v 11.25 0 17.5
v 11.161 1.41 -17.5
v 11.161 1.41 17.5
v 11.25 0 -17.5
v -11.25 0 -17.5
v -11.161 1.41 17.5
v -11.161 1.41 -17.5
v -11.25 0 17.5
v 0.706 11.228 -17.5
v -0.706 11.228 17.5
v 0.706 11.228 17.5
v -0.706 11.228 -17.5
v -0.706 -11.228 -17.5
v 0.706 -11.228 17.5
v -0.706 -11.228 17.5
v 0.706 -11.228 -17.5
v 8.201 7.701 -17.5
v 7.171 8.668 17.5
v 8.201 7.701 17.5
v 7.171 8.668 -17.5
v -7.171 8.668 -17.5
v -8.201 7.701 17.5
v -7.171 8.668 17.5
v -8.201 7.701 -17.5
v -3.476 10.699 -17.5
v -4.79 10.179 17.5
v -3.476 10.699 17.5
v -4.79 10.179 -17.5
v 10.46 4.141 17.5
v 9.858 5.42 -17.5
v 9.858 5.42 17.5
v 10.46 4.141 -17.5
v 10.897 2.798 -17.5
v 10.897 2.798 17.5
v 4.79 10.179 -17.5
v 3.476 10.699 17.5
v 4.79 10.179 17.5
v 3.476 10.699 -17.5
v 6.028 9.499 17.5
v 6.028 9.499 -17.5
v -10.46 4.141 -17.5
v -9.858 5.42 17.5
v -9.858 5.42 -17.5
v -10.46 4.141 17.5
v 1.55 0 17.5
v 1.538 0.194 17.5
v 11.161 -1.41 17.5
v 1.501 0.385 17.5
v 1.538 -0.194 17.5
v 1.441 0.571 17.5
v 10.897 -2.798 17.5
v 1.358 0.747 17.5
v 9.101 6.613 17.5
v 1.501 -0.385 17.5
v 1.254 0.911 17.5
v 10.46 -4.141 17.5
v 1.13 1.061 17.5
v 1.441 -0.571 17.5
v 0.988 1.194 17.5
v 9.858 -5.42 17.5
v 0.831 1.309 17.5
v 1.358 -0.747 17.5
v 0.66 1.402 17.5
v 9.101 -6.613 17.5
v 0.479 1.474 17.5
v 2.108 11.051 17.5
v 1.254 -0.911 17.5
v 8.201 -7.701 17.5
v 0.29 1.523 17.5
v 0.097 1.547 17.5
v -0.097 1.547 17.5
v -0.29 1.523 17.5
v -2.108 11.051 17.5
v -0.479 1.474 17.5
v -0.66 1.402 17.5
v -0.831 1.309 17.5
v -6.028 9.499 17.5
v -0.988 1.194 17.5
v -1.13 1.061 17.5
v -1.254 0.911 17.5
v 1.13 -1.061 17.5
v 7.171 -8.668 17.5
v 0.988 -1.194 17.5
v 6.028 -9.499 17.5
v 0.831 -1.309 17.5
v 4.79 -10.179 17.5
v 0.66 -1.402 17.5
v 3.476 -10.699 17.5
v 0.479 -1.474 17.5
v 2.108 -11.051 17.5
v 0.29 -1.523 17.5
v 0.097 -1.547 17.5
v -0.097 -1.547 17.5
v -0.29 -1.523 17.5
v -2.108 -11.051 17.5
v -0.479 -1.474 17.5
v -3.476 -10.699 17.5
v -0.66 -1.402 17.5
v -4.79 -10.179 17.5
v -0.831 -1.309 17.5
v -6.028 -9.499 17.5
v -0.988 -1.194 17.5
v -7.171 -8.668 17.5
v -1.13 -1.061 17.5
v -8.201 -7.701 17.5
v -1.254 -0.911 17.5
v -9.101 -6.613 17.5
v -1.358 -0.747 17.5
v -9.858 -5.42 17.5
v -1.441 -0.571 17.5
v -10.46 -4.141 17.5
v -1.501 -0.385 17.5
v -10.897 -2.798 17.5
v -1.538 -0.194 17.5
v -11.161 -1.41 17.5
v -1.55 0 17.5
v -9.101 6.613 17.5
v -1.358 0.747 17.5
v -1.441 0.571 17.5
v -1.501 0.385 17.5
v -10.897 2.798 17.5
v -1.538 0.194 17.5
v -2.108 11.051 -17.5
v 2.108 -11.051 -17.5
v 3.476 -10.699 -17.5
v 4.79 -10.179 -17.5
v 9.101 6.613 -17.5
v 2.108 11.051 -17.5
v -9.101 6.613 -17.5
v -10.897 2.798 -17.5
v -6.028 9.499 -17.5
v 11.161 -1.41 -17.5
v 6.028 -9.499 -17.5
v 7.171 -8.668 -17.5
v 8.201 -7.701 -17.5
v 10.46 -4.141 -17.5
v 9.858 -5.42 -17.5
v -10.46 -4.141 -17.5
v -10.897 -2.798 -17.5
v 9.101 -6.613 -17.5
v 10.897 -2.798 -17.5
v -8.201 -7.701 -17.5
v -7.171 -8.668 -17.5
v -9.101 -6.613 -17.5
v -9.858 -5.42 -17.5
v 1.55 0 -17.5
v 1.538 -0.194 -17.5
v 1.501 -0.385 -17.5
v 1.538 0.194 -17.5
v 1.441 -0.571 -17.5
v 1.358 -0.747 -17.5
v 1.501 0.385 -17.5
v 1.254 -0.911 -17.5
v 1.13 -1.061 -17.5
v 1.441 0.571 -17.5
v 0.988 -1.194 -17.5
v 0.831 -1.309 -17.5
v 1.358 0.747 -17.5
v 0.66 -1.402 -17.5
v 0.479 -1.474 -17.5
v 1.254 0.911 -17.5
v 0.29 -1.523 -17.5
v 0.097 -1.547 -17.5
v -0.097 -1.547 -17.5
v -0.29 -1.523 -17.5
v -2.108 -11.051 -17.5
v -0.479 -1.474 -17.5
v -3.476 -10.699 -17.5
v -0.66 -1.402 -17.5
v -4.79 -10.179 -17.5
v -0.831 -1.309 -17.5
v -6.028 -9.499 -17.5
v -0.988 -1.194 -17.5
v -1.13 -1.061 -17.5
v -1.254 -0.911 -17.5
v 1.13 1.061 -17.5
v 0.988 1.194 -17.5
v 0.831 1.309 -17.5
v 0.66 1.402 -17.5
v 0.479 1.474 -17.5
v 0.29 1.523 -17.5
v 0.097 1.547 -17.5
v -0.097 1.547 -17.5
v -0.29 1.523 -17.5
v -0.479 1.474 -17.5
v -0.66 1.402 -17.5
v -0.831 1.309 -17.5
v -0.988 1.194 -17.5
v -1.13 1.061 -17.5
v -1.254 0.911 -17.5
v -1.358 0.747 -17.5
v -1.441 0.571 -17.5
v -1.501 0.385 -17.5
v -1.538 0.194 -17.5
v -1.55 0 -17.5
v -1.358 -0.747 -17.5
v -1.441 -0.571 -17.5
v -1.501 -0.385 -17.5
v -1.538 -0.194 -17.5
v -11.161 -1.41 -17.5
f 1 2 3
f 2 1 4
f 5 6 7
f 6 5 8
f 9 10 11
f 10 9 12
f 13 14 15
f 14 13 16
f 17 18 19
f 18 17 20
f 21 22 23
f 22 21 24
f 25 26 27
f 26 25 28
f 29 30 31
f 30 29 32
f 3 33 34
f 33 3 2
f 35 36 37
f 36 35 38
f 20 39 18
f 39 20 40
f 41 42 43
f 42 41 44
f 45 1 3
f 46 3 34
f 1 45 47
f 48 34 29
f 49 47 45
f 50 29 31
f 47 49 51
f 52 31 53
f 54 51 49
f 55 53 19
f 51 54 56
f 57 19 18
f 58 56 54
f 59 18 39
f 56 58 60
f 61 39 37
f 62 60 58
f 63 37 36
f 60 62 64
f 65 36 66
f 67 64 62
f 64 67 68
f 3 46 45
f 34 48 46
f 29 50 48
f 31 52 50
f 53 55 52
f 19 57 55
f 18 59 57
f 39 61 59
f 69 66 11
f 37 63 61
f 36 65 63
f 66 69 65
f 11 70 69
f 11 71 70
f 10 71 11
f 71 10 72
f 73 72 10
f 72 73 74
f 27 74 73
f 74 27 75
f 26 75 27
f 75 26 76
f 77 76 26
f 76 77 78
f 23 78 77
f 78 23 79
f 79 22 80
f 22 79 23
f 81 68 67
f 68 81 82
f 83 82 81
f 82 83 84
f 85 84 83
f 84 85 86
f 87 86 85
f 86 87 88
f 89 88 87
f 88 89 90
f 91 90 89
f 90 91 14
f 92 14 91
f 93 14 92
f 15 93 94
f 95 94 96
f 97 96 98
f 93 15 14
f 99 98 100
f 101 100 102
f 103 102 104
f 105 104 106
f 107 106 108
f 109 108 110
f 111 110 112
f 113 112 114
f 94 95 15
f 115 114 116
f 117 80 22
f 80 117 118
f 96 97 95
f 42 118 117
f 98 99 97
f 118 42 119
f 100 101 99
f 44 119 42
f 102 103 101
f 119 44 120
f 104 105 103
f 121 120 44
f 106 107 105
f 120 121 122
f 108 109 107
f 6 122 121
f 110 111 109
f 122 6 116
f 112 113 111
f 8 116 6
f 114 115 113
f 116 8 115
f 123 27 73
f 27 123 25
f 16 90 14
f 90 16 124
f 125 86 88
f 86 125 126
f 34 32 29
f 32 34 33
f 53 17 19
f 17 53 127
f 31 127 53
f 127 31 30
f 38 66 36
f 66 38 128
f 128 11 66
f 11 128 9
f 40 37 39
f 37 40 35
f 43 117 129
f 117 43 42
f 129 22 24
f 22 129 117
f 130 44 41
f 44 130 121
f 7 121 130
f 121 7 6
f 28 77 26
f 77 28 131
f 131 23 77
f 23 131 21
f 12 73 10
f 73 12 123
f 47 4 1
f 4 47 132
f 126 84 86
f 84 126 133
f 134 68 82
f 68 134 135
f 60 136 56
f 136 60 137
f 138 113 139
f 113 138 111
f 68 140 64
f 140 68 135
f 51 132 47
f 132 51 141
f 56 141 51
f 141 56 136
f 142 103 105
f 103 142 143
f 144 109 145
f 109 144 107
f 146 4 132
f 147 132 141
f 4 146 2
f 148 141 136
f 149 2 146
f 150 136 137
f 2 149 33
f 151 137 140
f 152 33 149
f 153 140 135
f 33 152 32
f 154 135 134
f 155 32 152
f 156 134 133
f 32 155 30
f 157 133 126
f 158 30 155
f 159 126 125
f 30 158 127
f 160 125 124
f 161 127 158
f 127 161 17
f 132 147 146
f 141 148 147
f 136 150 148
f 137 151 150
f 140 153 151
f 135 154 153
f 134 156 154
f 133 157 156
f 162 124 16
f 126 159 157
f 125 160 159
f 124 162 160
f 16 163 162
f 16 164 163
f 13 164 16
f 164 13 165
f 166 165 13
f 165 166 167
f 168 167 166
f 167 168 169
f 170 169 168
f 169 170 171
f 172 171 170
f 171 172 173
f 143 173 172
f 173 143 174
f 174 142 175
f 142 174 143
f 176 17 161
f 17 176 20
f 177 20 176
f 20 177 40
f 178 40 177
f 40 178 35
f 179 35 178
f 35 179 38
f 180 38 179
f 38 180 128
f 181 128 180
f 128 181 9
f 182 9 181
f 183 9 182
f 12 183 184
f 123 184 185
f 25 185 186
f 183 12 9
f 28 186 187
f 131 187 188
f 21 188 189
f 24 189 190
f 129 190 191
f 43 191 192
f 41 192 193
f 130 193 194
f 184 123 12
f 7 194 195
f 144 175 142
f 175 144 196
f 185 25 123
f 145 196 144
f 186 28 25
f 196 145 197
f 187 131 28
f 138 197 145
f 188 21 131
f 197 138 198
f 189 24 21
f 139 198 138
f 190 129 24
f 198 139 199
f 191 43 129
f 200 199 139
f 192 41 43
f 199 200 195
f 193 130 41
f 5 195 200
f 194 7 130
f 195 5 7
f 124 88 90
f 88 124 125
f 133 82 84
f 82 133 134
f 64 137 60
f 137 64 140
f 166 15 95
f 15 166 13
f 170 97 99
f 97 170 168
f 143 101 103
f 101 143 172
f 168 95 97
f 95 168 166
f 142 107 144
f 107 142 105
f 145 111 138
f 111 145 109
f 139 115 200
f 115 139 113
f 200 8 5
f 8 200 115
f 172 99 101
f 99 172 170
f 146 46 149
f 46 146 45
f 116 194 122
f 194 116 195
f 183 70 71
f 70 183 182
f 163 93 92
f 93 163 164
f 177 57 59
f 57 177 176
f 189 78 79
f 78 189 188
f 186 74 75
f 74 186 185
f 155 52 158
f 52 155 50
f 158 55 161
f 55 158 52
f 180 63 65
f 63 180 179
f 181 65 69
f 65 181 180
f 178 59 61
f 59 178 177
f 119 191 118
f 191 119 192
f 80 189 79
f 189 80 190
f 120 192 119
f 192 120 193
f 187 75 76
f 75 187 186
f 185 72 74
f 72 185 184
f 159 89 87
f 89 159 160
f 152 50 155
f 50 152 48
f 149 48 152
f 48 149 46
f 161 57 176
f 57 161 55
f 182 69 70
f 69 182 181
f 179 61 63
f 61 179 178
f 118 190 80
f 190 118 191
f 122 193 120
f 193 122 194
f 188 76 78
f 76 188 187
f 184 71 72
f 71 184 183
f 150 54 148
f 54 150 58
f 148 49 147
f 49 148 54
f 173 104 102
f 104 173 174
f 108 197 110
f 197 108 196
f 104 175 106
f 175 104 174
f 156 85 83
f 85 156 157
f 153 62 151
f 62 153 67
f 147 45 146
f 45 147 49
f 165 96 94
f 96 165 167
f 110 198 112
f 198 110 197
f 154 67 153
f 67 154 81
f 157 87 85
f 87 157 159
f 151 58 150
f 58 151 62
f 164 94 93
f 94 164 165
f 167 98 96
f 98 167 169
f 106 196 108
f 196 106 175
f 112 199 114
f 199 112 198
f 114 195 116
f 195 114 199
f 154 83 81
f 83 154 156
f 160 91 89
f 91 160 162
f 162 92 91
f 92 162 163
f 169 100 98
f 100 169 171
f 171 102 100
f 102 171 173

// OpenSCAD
$fn = 50;


difference() {
	union() {
		translate(v = [0, 0, -17.5000000000]) {
			cylinder(h = 35, r = 11.2500000000);
		}
	}
	union() {
		translate(v = [0, 0, -100.0000000000]) {
			cylinder(h = 200, r = 1.5500000000);
		}
	}
}
